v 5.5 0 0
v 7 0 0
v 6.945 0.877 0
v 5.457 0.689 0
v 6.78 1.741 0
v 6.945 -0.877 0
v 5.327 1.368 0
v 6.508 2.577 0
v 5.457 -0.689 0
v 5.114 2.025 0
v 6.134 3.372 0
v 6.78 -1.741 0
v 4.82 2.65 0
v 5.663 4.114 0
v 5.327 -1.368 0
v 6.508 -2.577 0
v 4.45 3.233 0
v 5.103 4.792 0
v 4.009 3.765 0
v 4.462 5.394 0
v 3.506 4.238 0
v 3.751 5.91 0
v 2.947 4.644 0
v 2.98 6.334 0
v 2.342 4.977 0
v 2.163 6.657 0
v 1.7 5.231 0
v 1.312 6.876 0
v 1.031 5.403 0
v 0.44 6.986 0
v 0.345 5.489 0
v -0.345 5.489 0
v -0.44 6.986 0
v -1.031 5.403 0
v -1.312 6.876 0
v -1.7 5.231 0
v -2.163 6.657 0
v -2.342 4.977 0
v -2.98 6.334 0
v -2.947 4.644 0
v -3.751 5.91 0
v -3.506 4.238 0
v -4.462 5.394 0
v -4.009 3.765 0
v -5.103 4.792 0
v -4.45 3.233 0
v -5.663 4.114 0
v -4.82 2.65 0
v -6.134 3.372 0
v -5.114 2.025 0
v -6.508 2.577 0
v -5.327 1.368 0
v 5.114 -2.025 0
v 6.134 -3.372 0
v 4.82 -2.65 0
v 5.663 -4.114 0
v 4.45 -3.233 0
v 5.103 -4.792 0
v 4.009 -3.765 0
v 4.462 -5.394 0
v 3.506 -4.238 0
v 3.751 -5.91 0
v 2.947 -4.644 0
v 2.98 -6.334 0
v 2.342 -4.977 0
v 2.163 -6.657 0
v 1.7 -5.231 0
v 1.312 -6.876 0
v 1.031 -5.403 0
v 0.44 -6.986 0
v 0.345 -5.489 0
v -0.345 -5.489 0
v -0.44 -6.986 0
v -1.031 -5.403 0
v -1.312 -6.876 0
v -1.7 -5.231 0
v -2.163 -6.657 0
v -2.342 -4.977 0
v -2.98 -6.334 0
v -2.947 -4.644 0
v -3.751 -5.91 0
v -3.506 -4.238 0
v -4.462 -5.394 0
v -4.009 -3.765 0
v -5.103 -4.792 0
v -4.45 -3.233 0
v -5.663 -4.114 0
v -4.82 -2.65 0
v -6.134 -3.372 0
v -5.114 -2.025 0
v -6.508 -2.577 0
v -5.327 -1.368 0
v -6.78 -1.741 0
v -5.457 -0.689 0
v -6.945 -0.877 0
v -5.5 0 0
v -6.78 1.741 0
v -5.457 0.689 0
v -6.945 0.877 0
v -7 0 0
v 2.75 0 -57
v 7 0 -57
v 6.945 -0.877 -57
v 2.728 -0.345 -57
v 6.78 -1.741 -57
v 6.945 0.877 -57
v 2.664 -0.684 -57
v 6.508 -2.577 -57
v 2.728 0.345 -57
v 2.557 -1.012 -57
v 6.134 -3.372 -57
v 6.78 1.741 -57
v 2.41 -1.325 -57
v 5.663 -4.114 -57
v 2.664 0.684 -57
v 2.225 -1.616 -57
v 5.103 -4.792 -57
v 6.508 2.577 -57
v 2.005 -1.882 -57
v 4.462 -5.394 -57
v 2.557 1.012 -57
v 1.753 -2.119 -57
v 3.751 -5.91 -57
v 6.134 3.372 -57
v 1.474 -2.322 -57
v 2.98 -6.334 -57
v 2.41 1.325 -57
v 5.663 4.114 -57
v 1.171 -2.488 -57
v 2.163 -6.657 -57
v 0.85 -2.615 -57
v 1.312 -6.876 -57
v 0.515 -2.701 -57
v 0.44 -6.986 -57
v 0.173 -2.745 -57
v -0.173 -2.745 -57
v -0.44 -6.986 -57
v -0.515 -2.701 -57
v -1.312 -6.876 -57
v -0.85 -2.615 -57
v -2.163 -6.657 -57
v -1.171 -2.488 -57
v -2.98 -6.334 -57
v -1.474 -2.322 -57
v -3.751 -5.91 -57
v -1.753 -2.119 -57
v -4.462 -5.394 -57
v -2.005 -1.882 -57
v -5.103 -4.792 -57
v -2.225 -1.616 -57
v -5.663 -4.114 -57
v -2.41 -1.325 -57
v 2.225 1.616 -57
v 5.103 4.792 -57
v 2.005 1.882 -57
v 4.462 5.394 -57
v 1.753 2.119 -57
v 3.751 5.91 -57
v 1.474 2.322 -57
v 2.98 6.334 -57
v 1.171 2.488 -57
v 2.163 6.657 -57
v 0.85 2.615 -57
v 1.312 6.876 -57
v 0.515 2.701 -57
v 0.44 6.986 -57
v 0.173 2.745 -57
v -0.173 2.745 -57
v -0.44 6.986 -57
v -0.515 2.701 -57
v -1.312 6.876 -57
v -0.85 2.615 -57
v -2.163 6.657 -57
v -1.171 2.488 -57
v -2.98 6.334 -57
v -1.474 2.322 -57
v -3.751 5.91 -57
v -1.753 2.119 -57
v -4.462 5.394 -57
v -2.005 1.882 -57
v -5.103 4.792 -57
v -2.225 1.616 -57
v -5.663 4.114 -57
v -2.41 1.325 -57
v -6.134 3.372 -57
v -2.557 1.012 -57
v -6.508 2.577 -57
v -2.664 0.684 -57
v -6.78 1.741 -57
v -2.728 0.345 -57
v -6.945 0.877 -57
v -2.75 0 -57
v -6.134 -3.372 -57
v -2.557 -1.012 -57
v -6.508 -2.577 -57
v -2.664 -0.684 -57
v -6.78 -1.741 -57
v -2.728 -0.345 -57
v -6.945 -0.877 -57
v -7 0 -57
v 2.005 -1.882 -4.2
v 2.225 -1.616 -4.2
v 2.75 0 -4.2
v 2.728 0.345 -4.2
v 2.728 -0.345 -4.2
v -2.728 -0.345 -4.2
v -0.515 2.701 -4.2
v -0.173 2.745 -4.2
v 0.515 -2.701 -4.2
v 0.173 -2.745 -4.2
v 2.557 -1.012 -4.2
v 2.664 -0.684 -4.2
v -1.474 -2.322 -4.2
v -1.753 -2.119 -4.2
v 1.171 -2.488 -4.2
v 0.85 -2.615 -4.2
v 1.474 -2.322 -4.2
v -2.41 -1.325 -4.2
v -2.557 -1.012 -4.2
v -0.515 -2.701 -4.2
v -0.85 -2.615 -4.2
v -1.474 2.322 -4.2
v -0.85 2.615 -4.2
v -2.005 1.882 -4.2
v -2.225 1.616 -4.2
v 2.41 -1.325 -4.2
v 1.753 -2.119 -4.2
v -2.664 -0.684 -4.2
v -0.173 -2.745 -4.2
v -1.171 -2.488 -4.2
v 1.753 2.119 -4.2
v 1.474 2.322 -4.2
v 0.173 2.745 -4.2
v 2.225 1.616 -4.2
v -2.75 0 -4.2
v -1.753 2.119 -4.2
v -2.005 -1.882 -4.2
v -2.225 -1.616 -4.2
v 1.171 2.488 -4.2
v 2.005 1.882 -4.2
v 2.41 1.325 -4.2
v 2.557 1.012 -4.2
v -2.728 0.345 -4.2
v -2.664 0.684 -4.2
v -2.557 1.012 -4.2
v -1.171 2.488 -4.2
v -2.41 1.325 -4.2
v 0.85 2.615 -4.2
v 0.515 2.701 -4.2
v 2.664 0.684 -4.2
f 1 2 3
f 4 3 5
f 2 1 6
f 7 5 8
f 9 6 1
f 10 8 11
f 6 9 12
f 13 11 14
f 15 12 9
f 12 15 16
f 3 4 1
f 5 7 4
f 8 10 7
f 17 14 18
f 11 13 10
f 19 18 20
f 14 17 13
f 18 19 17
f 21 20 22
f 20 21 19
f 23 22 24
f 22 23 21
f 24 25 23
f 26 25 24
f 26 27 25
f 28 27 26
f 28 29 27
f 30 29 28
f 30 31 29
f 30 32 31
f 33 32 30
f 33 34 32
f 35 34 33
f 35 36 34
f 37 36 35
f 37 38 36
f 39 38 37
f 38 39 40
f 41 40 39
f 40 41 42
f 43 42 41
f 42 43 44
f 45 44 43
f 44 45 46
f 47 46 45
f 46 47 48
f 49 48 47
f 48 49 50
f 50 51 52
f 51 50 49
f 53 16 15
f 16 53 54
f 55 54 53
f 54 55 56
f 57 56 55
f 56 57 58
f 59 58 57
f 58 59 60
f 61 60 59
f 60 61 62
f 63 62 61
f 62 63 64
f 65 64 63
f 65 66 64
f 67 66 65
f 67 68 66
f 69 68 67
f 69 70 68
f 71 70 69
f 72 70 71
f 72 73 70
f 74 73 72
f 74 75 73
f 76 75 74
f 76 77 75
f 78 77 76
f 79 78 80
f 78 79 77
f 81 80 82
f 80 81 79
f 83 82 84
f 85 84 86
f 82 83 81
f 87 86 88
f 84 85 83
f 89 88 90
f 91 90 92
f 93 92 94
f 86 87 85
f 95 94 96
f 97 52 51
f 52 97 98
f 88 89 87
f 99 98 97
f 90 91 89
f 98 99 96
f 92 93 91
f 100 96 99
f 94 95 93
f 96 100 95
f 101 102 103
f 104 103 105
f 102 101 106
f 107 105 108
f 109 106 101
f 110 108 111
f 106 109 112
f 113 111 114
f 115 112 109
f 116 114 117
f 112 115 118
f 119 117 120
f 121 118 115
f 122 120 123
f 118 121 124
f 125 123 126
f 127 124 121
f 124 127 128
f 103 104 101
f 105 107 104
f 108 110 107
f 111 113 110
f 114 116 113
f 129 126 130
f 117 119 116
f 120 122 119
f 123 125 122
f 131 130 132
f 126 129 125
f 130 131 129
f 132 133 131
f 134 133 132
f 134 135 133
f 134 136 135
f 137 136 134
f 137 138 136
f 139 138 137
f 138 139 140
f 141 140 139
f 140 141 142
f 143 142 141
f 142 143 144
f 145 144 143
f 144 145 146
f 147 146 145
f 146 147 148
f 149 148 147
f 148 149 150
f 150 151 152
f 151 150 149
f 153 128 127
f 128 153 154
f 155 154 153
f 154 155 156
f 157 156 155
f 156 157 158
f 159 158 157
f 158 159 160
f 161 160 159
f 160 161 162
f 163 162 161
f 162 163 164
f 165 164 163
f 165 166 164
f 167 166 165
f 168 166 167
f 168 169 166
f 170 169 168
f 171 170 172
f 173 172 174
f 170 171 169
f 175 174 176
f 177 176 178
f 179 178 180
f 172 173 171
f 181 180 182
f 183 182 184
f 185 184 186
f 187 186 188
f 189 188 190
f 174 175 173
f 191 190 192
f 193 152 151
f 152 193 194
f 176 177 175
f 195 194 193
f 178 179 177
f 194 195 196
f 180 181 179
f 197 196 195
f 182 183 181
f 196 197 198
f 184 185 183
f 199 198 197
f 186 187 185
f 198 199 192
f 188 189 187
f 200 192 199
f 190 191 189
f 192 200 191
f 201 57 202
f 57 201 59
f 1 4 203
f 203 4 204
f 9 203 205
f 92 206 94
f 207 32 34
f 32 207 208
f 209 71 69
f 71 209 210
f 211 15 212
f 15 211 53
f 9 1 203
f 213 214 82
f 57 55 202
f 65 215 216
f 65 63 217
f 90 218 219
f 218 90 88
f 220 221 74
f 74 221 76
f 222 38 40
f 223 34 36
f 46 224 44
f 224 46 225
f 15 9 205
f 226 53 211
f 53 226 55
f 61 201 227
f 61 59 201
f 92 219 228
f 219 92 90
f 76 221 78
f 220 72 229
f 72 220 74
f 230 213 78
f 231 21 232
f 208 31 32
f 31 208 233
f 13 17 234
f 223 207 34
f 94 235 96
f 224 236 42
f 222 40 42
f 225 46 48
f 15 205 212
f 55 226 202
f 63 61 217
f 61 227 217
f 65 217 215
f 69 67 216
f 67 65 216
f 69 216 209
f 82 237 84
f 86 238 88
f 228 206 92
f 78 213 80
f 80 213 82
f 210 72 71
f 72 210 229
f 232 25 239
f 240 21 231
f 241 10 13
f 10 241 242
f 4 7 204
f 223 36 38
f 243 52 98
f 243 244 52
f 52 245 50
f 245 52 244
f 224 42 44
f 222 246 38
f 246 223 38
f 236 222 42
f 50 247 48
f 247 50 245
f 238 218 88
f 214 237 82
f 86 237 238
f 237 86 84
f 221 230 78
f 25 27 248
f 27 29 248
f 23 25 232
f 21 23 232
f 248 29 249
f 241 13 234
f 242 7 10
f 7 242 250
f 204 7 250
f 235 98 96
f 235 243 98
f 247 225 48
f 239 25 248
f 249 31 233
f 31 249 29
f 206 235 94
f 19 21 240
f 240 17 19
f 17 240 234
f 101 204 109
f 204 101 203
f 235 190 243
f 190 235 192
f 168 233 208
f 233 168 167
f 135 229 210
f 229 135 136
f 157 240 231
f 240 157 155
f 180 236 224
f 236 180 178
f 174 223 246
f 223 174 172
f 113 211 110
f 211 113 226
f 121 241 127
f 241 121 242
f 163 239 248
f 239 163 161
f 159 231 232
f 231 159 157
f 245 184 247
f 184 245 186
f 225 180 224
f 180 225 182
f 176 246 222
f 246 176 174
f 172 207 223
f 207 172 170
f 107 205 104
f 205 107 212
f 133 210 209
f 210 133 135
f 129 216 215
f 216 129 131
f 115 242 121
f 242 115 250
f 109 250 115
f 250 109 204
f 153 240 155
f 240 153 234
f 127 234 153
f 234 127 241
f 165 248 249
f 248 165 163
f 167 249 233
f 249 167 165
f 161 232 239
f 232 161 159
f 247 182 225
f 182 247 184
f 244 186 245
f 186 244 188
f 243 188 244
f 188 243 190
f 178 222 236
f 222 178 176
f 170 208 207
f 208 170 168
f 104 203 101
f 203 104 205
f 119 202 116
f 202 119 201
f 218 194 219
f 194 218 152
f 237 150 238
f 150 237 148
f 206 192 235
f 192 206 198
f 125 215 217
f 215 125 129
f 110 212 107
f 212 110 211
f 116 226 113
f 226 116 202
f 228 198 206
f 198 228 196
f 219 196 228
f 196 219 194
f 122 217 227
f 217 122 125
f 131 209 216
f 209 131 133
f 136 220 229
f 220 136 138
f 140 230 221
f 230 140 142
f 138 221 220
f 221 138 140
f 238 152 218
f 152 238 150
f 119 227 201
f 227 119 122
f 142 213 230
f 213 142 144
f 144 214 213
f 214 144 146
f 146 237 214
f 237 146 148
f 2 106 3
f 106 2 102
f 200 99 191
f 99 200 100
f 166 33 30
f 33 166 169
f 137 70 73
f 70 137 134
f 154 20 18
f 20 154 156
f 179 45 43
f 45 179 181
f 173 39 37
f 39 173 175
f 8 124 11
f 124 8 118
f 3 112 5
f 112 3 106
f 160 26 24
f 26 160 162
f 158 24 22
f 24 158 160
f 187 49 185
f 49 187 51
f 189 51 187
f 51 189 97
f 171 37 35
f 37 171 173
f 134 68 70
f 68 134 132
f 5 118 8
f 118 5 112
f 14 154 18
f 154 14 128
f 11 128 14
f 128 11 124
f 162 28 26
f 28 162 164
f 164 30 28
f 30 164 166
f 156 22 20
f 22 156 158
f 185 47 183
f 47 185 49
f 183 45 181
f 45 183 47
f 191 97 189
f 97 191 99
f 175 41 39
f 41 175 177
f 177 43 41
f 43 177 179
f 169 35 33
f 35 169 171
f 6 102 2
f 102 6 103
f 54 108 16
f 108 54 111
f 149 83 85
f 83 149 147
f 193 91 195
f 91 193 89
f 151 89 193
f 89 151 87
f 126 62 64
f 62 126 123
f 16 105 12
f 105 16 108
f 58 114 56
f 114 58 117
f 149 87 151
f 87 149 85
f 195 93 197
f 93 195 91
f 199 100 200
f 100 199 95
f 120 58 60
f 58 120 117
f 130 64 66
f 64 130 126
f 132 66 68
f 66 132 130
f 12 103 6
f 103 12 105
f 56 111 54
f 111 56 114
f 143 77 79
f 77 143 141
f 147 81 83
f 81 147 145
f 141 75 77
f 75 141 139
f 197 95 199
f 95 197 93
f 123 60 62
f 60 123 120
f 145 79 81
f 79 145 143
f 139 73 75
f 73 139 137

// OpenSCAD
$fn = 50;


difference() {
	union() {
		translate(v = [0, 0, -57.0000000000]) {
			cylinder(h = 57, r = 7.0000000000);
		}
		cylinder(h = 0, r = 10.0000000000);
	}
	union() {
		translate(v = [0, 0, 0]) {
			rotate(a = [0, 0, 0]) {
				difference() {
					union() {
						#translate(v = [0, 0, -57.0000000000]) {
							cylinder(h = 57, r = 2.2500000000);
						}
						#translate(v = [0, 0, -4.2000000000]) {
							cylinder(h = 4.2000000000, r1 = 2.7500000000, r2 = 5.5000000000);
						}
						#translate(v = [0, 0, -57.0000000000]) {
							cylinder(h = 57, r = 2.7500000000);
						}
						#translate(v = [0, 0, -57.0000000000]) {
							cylinder(h = 57, r = 2.2500000000);
						}
					}
					union();
				}
			}
		}
	}
}
